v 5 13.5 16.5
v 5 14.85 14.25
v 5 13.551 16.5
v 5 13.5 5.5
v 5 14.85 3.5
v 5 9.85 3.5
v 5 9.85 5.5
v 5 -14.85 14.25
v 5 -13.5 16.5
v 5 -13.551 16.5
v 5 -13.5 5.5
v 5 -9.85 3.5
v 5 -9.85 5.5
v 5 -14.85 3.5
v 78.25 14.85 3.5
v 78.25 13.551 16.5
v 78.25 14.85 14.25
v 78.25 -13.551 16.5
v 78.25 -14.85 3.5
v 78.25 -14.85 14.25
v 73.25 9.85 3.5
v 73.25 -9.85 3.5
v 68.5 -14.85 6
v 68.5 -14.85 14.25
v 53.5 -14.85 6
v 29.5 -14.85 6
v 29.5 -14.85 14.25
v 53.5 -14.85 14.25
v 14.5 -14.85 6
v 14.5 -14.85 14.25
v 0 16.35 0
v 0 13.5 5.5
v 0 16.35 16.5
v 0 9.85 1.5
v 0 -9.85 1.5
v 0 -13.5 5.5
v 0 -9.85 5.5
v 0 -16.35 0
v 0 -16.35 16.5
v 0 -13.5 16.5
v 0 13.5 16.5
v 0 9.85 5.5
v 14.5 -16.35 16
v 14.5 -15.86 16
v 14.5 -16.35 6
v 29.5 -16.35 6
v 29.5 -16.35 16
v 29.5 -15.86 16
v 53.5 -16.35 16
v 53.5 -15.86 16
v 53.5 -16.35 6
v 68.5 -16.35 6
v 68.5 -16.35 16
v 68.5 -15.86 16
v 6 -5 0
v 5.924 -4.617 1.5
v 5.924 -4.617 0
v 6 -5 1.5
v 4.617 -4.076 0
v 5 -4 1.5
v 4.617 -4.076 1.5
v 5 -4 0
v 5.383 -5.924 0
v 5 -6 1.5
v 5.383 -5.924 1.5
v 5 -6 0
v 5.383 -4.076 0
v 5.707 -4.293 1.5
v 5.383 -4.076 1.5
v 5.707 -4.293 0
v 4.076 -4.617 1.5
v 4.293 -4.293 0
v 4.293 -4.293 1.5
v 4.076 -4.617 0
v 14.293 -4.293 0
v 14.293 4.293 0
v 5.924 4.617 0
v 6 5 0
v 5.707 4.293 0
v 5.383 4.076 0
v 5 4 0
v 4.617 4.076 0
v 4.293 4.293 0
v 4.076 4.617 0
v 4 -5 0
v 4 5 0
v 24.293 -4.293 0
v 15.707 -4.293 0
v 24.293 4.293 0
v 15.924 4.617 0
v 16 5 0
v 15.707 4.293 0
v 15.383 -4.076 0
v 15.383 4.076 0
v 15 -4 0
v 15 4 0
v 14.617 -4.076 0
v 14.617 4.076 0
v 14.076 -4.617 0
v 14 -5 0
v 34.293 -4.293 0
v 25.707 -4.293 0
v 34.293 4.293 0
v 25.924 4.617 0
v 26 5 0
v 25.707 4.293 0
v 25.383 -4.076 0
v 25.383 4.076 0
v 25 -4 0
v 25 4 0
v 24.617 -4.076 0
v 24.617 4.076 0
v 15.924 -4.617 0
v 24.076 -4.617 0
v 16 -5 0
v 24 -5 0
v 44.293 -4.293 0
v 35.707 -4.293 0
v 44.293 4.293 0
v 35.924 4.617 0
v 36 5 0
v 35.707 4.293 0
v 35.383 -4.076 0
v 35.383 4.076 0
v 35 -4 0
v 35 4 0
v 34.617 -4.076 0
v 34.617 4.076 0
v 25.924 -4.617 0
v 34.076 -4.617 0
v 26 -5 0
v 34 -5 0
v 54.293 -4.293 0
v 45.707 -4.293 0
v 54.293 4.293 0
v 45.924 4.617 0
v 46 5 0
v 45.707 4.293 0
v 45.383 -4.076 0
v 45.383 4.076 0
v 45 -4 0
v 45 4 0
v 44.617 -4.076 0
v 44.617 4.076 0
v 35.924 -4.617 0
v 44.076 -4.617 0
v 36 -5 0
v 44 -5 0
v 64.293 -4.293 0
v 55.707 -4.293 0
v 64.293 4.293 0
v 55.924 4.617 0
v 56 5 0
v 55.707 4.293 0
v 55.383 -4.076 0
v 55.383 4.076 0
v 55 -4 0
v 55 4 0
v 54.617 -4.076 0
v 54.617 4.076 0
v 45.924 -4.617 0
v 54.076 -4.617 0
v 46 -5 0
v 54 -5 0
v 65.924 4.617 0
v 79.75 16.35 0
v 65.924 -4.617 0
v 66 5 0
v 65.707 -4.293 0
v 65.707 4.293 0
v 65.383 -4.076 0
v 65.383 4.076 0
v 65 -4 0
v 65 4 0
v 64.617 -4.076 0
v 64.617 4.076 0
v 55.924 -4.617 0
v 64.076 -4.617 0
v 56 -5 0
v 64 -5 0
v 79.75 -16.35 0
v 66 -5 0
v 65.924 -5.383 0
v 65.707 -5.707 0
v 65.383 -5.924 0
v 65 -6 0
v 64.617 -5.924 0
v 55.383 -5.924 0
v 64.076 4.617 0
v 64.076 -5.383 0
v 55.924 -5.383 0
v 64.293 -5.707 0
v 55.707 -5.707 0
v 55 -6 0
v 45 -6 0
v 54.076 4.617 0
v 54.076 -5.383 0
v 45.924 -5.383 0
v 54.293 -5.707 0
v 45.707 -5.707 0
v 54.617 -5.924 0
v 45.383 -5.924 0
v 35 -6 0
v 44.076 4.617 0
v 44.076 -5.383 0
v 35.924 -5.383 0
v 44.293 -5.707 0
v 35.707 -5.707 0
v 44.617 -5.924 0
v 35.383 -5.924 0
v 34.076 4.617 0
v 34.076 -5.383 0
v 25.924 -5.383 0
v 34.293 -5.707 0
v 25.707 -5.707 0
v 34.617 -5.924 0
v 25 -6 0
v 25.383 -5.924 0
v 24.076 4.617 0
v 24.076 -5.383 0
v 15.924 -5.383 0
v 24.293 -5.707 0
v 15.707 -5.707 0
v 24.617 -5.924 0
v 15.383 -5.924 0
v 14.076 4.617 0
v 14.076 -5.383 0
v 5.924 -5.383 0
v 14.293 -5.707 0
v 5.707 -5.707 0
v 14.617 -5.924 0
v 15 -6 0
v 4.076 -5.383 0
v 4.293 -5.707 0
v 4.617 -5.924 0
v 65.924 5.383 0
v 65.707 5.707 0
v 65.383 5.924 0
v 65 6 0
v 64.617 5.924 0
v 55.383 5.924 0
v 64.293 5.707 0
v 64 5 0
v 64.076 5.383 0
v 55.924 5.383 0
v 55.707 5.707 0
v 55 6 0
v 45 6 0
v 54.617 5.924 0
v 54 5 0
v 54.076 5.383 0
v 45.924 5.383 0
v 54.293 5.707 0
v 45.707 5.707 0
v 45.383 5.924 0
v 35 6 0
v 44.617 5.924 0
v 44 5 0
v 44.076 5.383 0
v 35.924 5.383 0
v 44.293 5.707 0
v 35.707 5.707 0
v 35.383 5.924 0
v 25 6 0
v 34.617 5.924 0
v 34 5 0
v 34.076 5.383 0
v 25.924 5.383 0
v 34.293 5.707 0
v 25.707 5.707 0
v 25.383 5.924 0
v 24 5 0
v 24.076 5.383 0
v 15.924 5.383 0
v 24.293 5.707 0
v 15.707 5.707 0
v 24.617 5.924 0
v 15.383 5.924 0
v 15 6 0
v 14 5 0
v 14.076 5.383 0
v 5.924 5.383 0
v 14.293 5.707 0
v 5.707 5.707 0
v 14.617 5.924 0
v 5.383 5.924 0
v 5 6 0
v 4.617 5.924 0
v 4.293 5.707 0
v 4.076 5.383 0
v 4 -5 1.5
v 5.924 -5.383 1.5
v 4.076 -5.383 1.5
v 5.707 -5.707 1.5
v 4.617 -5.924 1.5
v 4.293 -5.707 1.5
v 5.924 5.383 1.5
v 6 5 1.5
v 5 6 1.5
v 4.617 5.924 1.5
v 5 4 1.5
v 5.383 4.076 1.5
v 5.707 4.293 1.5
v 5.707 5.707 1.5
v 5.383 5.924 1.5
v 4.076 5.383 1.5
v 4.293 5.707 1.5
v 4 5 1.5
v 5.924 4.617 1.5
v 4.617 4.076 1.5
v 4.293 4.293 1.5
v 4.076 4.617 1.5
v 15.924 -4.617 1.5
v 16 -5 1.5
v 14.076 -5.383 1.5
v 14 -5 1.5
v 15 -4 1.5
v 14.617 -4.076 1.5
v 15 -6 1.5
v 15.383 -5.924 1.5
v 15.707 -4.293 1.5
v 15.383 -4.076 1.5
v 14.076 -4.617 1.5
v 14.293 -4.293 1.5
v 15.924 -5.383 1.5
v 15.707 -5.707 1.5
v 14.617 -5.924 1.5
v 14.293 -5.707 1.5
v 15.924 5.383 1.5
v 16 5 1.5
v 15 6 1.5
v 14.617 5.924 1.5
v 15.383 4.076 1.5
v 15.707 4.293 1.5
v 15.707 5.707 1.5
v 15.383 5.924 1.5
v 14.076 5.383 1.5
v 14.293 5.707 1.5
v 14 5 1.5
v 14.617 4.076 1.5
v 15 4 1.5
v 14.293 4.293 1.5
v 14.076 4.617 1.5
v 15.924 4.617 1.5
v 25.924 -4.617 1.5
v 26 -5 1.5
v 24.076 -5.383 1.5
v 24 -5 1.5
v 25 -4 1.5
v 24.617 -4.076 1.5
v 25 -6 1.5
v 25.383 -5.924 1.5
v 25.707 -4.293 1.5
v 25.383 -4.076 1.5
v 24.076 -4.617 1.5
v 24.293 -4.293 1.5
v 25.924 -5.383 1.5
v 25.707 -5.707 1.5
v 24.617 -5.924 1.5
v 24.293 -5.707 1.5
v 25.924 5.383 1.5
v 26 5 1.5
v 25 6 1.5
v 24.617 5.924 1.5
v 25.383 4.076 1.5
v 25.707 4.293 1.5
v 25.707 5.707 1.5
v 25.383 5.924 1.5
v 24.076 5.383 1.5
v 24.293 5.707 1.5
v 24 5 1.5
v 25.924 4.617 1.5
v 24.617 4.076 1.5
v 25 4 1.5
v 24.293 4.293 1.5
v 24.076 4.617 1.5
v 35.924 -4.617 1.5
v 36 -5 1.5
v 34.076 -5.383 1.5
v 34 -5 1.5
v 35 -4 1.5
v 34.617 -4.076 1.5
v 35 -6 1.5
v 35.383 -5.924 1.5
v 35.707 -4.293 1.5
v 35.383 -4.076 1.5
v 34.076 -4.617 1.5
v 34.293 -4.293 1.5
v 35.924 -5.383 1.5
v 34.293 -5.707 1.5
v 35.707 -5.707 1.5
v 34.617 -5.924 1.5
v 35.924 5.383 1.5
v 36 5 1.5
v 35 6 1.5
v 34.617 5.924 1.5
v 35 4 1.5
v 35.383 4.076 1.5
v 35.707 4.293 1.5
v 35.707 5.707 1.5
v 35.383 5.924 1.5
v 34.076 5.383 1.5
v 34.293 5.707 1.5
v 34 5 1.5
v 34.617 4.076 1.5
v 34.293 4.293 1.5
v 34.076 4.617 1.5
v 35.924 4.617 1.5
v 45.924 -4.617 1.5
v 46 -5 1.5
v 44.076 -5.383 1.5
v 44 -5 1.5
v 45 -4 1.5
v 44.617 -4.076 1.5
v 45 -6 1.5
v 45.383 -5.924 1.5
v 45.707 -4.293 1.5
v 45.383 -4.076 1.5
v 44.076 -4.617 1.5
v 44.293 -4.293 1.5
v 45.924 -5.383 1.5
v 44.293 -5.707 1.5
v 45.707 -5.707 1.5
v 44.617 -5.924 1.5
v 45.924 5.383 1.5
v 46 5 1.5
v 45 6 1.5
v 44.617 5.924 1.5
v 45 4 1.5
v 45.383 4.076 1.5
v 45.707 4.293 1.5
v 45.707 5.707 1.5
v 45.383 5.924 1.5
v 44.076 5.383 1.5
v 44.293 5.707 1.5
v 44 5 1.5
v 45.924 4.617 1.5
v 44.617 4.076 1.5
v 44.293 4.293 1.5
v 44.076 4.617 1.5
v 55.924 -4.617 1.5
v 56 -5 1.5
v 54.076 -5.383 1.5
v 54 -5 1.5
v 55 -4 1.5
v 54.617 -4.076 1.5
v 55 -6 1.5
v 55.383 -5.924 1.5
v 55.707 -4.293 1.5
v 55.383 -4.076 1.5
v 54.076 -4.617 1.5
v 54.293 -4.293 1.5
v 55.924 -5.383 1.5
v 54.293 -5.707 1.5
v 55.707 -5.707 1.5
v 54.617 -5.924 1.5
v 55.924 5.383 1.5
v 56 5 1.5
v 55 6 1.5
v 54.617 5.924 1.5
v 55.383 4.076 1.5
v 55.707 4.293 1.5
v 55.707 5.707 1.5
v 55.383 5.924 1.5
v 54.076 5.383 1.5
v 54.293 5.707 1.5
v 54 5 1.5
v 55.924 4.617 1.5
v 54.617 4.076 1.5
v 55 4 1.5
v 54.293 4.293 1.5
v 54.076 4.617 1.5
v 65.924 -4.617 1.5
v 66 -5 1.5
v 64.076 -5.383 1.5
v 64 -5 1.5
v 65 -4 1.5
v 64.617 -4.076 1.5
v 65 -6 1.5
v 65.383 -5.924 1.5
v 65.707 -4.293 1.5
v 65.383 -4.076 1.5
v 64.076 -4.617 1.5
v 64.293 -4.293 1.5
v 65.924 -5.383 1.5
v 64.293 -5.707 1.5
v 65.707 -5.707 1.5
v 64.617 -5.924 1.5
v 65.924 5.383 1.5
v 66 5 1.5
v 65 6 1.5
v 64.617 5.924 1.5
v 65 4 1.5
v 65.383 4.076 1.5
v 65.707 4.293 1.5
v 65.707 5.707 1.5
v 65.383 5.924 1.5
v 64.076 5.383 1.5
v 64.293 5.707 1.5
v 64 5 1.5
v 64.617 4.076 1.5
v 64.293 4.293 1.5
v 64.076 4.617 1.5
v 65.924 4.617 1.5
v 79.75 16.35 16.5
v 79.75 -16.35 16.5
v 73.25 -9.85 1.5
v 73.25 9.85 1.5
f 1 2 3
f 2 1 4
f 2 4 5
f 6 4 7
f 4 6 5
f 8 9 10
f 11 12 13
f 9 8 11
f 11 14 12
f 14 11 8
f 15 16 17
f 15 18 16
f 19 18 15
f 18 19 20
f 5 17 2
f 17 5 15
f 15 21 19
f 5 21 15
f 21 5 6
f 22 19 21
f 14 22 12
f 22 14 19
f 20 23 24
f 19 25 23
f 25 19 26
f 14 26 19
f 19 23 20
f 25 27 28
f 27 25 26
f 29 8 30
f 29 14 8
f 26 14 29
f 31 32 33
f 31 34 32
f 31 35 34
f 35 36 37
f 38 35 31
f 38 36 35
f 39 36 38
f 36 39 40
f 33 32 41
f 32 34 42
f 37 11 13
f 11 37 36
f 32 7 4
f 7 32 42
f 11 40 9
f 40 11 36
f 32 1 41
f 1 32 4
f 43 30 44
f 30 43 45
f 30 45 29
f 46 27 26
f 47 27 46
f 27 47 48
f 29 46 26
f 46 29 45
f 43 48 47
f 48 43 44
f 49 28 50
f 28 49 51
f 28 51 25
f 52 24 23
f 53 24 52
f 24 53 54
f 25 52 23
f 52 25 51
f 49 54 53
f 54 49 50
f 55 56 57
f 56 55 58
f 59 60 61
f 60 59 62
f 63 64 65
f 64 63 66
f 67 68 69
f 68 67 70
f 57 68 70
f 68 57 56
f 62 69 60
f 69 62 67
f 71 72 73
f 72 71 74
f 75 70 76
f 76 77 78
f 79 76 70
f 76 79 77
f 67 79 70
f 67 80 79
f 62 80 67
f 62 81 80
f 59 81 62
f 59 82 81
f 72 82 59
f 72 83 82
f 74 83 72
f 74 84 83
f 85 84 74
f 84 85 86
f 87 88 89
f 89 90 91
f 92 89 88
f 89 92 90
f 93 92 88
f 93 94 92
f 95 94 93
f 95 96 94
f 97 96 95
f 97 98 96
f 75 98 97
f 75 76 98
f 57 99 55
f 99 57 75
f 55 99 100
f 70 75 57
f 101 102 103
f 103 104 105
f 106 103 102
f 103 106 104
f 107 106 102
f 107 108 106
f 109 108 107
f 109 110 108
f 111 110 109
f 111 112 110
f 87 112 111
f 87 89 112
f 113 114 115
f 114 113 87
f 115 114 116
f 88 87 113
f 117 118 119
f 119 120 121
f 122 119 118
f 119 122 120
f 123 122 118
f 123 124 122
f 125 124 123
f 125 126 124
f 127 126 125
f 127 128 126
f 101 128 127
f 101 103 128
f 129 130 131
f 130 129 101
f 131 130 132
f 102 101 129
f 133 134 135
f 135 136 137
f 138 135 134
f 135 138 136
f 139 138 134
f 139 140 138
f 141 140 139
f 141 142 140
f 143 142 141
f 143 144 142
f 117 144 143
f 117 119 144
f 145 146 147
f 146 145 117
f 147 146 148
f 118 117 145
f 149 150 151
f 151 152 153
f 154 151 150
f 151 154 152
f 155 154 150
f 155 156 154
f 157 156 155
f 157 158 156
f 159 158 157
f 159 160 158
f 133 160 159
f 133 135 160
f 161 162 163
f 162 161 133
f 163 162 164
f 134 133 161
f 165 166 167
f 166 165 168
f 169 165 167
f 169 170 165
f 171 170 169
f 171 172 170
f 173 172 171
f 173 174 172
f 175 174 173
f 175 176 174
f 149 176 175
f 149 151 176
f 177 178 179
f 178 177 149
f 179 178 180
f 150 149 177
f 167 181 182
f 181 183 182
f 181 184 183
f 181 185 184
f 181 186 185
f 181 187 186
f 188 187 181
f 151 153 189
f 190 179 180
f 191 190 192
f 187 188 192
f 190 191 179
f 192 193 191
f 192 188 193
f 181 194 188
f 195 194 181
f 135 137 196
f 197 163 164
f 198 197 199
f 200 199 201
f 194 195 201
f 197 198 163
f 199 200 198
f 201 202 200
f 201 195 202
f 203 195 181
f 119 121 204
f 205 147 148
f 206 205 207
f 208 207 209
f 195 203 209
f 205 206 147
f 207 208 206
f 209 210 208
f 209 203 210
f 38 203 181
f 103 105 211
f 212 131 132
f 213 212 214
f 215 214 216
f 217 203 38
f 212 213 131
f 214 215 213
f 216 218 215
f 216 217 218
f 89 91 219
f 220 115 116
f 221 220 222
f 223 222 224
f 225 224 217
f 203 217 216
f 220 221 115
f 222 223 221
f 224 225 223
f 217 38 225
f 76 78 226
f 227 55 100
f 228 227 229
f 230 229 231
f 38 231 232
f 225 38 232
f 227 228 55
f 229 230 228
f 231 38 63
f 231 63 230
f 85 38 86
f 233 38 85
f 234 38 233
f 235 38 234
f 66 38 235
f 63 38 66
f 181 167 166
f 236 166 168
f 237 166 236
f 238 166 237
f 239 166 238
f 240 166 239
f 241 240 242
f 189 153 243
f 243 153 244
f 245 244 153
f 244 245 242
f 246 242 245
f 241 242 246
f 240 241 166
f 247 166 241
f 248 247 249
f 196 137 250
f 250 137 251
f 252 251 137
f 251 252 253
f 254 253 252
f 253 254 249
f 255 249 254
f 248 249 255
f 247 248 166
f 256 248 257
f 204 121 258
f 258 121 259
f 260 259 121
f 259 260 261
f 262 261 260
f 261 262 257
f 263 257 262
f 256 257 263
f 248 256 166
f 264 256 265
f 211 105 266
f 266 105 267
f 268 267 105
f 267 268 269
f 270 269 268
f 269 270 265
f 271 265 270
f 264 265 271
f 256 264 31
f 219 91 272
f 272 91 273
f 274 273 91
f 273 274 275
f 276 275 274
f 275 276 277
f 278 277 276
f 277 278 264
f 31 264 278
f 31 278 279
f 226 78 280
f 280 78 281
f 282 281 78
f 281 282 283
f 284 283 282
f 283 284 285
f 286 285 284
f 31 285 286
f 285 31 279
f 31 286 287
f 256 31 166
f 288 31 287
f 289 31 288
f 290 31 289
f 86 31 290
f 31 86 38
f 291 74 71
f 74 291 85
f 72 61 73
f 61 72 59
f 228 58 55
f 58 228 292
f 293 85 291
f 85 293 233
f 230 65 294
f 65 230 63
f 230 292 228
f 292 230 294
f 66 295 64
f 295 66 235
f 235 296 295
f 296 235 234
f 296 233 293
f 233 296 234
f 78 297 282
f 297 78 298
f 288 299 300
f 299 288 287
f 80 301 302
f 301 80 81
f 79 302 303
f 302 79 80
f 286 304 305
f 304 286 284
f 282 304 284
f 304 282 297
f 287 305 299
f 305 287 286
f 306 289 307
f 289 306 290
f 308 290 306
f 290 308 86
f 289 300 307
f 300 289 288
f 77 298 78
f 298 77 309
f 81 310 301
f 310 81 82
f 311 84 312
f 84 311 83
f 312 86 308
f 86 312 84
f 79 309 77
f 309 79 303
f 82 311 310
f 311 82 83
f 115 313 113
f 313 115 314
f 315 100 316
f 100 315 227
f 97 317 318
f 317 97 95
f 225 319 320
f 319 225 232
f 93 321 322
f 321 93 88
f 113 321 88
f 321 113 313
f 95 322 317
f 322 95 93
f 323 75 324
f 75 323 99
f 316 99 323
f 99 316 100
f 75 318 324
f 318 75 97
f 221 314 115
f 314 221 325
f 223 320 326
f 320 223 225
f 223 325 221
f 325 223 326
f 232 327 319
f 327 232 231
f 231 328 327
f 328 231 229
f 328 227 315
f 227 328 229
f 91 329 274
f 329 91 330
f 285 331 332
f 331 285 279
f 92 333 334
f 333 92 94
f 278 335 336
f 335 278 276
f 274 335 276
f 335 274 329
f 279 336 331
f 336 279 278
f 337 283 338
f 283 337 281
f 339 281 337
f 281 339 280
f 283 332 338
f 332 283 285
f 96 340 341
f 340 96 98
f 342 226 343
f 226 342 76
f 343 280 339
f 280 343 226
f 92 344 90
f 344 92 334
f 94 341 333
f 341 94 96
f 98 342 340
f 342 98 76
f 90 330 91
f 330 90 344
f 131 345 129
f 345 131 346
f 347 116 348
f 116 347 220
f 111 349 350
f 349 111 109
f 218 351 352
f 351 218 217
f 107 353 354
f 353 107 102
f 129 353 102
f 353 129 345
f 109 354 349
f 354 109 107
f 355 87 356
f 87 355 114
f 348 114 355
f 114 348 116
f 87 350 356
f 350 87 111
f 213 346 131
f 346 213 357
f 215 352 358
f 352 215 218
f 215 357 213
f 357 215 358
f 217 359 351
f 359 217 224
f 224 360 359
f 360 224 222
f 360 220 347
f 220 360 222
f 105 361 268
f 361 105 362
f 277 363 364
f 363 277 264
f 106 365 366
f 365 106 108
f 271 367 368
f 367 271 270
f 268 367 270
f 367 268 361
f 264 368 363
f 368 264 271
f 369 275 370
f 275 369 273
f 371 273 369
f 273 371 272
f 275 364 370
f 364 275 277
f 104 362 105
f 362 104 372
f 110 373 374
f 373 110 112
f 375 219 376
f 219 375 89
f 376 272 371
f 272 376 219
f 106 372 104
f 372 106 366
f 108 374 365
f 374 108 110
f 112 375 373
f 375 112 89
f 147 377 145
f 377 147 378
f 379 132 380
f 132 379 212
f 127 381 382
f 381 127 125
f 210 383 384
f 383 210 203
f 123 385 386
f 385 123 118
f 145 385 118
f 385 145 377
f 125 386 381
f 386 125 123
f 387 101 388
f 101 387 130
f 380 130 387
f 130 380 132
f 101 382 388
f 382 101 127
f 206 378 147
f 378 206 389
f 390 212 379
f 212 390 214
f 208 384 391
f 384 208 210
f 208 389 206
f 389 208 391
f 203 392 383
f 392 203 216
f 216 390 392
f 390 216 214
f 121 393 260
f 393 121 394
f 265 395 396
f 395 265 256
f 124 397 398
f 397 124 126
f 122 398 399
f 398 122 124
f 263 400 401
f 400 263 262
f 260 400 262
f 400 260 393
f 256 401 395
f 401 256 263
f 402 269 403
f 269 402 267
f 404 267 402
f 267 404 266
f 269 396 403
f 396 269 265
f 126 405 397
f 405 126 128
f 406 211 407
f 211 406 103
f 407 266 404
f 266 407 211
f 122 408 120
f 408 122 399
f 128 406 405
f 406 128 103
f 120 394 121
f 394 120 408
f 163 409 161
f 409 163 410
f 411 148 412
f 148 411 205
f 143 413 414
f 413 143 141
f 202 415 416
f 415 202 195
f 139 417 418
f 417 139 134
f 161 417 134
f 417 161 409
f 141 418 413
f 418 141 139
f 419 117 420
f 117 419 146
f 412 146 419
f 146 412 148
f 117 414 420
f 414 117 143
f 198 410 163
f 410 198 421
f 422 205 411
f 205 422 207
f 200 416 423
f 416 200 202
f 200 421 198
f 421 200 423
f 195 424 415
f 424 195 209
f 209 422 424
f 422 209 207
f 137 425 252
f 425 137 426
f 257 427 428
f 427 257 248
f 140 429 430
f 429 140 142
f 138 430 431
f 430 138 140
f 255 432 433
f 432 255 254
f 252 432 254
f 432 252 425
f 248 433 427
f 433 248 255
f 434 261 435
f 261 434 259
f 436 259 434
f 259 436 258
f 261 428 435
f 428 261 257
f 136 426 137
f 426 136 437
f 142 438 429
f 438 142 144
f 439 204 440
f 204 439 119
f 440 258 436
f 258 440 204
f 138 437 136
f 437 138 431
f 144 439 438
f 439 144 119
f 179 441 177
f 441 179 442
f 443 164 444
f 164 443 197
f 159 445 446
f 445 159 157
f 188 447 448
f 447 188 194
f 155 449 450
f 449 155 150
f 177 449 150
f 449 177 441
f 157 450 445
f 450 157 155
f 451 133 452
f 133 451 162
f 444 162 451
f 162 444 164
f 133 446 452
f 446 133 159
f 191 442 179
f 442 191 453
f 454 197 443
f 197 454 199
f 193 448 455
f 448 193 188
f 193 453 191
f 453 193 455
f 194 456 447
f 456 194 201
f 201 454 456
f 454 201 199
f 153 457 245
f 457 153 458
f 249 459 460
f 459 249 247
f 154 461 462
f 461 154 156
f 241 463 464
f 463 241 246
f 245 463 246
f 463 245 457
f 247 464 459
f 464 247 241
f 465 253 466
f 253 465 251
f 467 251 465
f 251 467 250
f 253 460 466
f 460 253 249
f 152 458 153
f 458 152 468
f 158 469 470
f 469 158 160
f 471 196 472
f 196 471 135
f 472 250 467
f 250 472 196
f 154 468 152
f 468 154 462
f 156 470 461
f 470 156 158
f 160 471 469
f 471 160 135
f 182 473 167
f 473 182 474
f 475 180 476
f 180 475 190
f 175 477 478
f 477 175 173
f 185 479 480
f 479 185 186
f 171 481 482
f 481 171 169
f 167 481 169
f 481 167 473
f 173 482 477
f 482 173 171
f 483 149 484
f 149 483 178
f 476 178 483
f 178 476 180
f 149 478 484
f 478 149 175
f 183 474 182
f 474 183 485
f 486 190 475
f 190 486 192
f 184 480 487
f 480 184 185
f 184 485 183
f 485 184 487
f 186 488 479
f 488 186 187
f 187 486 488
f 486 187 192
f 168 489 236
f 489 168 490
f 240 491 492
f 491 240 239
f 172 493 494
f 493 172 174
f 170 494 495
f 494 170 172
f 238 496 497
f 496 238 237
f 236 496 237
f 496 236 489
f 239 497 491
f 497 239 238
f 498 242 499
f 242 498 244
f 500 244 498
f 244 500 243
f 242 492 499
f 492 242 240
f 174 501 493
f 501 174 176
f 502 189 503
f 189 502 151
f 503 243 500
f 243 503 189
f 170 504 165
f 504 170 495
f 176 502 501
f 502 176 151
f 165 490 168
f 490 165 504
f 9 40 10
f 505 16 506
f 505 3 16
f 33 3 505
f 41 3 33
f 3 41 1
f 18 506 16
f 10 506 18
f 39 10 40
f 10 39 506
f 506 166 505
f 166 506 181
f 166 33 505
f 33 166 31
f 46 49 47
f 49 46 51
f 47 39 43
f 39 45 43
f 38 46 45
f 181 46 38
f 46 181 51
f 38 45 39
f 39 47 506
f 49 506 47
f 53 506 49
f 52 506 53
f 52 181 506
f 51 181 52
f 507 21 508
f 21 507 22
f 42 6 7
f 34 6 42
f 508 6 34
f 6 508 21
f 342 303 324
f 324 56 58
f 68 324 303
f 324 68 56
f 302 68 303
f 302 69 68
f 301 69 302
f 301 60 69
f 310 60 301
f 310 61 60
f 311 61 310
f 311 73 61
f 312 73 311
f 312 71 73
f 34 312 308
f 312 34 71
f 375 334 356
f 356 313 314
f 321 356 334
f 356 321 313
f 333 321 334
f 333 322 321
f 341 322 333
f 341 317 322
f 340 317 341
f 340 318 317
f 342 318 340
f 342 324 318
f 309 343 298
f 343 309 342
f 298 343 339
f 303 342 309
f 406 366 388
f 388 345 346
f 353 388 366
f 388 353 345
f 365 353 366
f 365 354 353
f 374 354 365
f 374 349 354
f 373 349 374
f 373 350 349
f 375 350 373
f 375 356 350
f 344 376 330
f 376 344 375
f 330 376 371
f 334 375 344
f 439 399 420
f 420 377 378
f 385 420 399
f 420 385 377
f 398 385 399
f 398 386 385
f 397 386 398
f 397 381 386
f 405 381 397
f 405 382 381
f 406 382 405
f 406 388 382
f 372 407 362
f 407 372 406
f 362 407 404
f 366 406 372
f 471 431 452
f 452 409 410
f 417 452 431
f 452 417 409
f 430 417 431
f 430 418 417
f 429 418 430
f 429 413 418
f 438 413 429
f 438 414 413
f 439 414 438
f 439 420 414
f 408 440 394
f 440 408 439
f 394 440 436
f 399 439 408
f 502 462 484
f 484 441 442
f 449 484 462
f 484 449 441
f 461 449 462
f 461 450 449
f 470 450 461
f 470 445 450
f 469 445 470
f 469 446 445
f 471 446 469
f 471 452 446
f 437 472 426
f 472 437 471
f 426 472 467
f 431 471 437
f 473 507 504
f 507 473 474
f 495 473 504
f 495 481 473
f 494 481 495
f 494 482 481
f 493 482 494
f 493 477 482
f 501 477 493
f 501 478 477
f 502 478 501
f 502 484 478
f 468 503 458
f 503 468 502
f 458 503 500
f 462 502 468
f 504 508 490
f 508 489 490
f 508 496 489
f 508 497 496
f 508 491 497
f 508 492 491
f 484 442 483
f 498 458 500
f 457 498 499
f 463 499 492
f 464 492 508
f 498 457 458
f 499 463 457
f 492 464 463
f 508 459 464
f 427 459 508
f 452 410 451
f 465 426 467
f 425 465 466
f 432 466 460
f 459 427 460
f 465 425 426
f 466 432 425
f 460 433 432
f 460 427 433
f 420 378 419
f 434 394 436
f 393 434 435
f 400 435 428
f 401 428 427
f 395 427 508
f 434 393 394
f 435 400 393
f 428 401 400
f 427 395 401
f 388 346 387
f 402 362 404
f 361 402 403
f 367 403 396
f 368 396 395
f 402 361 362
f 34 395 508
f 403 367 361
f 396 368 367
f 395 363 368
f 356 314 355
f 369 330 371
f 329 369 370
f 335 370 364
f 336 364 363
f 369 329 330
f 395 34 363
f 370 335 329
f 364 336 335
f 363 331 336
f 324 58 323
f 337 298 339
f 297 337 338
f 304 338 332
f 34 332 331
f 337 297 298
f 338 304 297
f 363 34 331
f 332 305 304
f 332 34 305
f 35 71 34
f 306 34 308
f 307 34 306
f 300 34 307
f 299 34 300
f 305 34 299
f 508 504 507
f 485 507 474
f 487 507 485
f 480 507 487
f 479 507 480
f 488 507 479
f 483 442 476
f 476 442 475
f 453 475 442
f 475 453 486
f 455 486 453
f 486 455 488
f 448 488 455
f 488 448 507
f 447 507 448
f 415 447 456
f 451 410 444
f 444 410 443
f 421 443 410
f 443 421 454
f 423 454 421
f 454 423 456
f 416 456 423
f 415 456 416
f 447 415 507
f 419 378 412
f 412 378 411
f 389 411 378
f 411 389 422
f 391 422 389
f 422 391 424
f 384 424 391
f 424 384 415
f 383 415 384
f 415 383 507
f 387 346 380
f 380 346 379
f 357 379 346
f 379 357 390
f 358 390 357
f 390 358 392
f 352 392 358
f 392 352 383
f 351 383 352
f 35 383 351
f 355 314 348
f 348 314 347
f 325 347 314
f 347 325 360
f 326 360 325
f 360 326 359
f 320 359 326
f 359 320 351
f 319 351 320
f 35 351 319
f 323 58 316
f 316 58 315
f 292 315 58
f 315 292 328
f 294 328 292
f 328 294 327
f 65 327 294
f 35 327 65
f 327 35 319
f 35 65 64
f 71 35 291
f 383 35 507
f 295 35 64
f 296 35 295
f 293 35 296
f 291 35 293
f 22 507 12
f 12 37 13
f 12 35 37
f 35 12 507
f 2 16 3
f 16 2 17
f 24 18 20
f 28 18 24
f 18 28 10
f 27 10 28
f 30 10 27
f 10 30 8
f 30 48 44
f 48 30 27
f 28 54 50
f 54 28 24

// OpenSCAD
L=78.25;
W=29.7;
H=15;
L1=5;
W1=27;
H1=11;
T=1.5;

translate([0,W/2,H+T/2])
rotate([0,90,0])
cylinder(d=3,h=L,$fn=3);

translate([0,-W/2,H+T/2])
rotate([0,90,0])
cylinder(d=3,h=L,$fn=3);

difference() {
    translate([(L+T)/2,0,0])
    cube_center([L+T,W+2*T,H+T]);

    translate([(L-5)/2,0,T])
    cube_center([L-5,W-10,H]);
    
    translate([0,0,2]) {
        
    translate([L1 + (L-L1)/2,0,T])
    cube_center([L-L1,W,H]);
    
    translate([L1/2,0,T+(H-H1)/2])
    cube_center([L1,W1,H]);    
    
    translate([22,0,9])
    rotate([90,0,0])
    cube_center([15,10,100]);
    
    translate([61,0,9])
    rotate([90,0,0])
    cube_center([15,10,100]);
    }
    
    for(i=[5:10:70]) {
        for(j=[-5:10:5]) {
            translate([i,j,0])
            cylinder(d=2,h=4,$fn=16);
        }
    }
    
}



module cube_center(dims) {
    translate([-dims[0]/2, -dims[1]/2, 0])
    cube(dims);
}
